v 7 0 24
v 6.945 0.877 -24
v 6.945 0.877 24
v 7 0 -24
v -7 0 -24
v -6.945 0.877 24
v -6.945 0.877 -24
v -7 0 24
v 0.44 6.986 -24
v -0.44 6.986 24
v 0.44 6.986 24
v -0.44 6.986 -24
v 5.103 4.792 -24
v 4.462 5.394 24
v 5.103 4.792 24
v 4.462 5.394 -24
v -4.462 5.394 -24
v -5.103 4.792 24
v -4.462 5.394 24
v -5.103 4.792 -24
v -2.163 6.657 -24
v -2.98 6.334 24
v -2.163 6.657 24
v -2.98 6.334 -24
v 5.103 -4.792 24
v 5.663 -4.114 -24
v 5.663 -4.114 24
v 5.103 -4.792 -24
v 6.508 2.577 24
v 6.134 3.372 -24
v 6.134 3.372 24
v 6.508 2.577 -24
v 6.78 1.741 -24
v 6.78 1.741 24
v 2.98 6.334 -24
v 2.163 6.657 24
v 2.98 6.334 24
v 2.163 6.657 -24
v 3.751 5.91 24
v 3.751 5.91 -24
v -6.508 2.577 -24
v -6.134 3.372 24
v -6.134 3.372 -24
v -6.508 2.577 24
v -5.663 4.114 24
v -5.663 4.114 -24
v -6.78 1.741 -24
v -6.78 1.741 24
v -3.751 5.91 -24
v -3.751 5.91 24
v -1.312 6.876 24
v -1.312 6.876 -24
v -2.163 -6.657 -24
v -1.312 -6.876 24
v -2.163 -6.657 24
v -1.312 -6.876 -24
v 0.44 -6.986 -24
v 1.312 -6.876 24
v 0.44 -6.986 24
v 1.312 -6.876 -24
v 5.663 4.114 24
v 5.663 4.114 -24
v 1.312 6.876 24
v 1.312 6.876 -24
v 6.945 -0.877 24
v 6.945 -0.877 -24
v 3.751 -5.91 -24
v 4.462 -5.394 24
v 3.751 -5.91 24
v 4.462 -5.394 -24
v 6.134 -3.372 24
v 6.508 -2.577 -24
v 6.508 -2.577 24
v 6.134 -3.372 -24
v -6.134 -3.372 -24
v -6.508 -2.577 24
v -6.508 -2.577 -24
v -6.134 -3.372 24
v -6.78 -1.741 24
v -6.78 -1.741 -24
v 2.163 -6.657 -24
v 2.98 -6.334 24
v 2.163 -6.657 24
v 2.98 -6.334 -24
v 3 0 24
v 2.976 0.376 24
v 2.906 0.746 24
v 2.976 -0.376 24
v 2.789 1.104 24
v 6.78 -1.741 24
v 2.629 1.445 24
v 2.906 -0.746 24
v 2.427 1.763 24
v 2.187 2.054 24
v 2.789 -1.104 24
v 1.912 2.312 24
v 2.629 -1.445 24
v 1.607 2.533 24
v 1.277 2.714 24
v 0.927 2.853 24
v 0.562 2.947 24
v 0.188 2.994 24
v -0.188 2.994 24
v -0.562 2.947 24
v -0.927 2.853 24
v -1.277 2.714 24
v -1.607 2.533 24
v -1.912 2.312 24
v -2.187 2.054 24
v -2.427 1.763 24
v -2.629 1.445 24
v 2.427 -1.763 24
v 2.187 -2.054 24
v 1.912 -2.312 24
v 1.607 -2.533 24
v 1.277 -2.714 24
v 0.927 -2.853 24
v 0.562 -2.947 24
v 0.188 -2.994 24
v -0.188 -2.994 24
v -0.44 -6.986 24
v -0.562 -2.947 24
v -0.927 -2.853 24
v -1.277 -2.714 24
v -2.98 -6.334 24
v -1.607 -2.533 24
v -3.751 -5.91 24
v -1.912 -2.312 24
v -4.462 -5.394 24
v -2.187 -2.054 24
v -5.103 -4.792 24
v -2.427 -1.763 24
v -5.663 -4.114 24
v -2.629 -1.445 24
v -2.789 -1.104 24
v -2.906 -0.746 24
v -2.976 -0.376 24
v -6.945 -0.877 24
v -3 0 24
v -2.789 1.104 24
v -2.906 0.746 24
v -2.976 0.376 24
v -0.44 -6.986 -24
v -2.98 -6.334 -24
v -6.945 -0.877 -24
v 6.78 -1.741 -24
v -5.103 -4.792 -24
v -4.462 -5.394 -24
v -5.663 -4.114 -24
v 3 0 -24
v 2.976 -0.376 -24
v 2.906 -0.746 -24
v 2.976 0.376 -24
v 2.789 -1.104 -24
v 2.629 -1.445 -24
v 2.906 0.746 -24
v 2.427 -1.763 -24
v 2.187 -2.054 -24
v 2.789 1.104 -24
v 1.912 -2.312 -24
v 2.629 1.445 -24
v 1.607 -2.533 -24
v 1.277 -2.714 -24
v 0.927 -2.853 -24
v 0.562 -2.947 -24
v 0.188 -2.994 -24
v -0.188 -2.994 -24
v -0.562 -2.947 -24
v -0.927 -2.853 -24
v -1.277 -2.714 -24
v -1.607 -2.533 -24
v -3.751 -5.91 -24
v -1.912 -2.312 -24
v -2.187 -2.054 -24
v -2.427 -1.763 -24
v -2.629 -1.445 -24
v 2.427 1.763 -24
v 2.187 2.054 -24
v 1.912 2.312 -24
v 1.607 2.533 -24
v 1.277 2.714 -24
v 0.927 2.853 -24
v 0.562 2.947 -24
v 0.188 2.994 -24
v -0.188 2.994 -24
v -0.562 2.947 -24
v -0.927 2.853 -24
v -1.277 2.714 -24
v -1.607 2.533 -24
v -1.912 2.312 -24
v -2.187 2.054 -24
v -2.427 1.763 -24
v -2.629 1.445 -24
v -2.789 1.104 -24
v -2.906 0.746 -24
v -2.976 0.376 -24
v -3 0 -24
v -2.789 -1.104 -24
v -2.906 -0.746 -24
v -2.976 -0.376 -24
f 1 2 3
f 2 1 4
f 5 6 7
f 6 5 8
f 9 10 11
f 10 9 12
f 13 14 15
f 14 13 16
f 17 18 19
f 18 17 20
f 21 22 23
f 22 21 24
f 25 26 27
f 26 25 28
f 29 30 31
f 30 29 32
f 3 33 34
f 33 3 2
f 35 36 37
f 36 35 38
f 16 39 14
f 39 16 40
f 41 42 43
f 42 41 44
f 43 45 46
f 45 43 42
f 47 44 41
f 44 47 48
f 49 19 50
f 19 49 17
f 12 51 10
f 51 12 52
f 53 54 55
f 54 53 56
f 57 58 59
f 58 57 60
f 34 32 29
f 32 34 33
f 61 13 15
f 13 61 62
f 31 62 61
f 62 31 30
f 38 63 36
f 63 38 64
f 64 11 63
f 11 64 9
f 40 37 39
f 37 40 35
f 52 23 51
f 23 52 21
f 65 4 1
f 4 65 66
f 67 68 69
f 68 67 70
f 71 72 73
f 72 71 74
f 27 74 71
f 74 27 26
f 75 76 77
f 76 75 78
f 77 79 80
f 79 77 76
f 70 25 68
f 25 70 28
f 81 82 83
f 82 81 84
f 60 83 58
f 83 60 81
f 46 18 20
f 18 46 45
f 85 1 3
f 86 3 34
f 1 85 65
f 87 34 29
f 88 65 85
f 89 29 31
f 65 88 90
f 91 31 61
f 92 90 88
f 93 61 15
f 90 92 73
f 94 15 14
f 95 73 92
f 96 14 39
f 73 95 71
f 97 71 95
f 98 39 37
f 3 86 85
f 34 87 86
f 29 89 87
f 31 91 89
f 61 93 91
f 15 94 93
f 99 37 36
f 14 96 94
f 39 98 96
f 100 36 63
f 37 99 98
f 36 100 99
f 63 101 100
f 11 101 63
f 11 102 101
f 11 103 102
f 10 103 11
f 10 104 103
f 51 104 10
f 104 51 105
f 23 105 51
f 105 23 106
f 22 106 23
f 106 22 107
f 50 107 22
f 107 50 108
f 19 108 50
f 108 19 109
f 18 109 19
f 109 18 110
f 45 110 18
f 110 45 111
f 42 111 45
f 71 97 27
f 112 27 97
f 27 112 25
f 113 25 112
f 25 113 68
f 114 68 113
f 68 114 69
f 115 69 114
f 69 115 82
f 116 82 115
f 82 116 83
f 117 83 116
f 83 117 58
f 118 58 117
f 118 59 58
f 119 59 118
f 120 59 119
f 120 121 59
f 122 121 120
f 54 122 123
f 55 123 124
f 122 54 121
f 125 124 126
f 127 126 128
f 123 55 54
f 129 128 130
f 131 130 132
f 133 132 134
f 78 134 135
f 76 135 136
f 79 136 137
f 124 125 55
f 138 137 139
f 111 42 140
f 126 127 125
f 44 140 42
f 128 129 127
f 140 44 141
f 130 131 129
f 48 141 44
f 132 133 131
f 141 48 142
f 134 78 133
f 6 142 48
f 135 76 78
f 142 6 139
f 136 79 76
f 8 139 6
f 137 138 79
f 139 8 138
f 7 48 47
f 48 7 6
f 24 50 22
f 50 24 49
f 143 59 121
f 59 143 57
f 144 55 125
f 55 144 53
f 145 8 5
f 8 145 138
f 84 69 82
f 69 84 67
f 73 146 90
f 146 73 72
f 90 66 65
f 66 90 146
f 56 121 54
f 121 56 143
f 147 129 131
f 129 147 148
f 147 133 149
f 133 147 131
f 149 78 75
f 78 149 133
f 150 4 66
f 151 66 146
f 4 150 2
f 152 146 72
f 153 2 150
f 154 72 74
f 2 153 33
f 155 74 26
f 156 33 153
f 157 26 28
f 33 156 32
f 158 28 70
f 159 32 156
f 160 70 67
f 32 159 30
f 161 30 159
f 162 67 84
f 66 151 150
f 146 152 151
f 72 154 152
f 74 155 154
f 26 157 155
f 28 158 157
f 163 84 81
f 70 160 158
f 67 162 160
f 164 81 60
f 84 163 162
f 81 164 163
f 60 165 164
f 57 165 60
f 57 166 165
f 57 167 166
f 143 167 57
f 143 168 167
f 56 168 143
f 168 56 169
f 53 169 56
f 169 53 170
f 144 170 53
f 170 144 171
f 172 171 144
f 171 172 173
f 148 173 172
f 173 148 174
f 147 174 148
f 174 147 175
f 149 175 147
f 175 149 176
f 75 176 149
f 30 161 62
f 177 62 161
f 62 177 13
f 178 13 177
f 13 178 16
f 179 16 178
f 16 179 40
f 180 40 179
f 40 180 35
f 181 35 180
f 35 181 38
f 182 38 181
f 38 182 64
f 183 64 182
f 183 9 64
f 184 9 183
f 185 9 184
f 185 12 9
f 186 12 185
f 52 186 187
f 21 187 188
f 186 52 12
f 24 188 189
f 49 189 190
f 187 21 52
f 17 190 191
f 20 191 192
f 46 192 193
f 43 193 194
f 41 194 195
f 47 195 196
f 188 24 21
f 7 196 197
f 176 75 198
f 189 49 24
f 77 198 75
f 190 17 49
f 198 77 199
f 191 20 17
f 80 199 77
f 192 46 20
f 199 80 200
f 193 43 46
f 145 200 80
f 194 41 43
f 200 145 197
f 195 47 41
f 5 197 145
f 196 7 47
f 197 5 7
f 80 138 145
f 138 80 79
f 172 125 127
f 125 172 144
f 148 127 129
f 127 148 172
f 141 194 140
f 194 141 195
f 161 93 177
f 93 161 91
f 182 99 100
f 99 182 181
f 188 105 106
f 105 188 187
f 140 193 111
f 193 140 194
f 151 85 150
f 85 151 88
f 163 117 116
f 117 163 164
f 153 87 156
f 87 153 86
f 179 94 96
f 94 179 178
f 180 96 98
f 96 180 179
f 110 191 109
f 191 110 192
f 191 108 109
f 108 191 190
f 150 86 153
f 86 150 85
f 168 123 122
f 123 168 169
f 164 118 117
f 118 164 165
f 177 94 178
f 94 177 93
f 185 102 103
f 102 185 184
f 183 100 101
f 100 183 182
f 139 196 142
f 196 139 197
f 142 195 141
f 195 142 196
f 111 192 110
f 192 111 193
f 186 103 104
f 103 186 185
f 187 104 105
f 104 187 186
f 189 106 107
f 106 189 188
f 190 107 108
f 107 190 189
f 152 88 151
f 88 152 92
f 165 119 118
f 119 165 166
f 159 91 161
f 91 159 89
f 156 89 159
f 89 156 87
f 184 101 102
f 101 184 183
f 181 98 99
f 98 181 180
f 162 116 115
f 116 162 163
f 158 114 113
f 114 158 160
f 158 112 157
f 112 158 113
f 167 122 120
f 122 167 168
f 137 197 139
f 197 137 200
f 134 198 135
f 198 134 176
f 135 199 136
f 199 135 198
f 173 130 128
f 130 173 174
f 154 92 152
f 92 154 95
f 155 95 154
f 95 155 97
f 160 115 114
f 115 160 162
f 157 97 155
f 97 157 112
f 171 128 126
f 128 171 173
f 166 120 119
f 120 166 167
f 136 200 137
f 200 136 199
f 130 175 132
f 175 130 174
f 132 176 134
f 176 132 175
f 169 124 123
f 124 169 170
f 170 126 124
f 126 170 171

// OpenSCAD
$fn = 50;


difference() {
	union() {
		translate(v = [0, 0, -24.0000000000]) {
			cylinder(h = 48, r = 7.0000000000);
		}
	}
	union() {
		translate(v = [0, 0, -100.0000000000]) {
			cylinder(h = 200, r = 3.0000000000);
		}
	}
}
